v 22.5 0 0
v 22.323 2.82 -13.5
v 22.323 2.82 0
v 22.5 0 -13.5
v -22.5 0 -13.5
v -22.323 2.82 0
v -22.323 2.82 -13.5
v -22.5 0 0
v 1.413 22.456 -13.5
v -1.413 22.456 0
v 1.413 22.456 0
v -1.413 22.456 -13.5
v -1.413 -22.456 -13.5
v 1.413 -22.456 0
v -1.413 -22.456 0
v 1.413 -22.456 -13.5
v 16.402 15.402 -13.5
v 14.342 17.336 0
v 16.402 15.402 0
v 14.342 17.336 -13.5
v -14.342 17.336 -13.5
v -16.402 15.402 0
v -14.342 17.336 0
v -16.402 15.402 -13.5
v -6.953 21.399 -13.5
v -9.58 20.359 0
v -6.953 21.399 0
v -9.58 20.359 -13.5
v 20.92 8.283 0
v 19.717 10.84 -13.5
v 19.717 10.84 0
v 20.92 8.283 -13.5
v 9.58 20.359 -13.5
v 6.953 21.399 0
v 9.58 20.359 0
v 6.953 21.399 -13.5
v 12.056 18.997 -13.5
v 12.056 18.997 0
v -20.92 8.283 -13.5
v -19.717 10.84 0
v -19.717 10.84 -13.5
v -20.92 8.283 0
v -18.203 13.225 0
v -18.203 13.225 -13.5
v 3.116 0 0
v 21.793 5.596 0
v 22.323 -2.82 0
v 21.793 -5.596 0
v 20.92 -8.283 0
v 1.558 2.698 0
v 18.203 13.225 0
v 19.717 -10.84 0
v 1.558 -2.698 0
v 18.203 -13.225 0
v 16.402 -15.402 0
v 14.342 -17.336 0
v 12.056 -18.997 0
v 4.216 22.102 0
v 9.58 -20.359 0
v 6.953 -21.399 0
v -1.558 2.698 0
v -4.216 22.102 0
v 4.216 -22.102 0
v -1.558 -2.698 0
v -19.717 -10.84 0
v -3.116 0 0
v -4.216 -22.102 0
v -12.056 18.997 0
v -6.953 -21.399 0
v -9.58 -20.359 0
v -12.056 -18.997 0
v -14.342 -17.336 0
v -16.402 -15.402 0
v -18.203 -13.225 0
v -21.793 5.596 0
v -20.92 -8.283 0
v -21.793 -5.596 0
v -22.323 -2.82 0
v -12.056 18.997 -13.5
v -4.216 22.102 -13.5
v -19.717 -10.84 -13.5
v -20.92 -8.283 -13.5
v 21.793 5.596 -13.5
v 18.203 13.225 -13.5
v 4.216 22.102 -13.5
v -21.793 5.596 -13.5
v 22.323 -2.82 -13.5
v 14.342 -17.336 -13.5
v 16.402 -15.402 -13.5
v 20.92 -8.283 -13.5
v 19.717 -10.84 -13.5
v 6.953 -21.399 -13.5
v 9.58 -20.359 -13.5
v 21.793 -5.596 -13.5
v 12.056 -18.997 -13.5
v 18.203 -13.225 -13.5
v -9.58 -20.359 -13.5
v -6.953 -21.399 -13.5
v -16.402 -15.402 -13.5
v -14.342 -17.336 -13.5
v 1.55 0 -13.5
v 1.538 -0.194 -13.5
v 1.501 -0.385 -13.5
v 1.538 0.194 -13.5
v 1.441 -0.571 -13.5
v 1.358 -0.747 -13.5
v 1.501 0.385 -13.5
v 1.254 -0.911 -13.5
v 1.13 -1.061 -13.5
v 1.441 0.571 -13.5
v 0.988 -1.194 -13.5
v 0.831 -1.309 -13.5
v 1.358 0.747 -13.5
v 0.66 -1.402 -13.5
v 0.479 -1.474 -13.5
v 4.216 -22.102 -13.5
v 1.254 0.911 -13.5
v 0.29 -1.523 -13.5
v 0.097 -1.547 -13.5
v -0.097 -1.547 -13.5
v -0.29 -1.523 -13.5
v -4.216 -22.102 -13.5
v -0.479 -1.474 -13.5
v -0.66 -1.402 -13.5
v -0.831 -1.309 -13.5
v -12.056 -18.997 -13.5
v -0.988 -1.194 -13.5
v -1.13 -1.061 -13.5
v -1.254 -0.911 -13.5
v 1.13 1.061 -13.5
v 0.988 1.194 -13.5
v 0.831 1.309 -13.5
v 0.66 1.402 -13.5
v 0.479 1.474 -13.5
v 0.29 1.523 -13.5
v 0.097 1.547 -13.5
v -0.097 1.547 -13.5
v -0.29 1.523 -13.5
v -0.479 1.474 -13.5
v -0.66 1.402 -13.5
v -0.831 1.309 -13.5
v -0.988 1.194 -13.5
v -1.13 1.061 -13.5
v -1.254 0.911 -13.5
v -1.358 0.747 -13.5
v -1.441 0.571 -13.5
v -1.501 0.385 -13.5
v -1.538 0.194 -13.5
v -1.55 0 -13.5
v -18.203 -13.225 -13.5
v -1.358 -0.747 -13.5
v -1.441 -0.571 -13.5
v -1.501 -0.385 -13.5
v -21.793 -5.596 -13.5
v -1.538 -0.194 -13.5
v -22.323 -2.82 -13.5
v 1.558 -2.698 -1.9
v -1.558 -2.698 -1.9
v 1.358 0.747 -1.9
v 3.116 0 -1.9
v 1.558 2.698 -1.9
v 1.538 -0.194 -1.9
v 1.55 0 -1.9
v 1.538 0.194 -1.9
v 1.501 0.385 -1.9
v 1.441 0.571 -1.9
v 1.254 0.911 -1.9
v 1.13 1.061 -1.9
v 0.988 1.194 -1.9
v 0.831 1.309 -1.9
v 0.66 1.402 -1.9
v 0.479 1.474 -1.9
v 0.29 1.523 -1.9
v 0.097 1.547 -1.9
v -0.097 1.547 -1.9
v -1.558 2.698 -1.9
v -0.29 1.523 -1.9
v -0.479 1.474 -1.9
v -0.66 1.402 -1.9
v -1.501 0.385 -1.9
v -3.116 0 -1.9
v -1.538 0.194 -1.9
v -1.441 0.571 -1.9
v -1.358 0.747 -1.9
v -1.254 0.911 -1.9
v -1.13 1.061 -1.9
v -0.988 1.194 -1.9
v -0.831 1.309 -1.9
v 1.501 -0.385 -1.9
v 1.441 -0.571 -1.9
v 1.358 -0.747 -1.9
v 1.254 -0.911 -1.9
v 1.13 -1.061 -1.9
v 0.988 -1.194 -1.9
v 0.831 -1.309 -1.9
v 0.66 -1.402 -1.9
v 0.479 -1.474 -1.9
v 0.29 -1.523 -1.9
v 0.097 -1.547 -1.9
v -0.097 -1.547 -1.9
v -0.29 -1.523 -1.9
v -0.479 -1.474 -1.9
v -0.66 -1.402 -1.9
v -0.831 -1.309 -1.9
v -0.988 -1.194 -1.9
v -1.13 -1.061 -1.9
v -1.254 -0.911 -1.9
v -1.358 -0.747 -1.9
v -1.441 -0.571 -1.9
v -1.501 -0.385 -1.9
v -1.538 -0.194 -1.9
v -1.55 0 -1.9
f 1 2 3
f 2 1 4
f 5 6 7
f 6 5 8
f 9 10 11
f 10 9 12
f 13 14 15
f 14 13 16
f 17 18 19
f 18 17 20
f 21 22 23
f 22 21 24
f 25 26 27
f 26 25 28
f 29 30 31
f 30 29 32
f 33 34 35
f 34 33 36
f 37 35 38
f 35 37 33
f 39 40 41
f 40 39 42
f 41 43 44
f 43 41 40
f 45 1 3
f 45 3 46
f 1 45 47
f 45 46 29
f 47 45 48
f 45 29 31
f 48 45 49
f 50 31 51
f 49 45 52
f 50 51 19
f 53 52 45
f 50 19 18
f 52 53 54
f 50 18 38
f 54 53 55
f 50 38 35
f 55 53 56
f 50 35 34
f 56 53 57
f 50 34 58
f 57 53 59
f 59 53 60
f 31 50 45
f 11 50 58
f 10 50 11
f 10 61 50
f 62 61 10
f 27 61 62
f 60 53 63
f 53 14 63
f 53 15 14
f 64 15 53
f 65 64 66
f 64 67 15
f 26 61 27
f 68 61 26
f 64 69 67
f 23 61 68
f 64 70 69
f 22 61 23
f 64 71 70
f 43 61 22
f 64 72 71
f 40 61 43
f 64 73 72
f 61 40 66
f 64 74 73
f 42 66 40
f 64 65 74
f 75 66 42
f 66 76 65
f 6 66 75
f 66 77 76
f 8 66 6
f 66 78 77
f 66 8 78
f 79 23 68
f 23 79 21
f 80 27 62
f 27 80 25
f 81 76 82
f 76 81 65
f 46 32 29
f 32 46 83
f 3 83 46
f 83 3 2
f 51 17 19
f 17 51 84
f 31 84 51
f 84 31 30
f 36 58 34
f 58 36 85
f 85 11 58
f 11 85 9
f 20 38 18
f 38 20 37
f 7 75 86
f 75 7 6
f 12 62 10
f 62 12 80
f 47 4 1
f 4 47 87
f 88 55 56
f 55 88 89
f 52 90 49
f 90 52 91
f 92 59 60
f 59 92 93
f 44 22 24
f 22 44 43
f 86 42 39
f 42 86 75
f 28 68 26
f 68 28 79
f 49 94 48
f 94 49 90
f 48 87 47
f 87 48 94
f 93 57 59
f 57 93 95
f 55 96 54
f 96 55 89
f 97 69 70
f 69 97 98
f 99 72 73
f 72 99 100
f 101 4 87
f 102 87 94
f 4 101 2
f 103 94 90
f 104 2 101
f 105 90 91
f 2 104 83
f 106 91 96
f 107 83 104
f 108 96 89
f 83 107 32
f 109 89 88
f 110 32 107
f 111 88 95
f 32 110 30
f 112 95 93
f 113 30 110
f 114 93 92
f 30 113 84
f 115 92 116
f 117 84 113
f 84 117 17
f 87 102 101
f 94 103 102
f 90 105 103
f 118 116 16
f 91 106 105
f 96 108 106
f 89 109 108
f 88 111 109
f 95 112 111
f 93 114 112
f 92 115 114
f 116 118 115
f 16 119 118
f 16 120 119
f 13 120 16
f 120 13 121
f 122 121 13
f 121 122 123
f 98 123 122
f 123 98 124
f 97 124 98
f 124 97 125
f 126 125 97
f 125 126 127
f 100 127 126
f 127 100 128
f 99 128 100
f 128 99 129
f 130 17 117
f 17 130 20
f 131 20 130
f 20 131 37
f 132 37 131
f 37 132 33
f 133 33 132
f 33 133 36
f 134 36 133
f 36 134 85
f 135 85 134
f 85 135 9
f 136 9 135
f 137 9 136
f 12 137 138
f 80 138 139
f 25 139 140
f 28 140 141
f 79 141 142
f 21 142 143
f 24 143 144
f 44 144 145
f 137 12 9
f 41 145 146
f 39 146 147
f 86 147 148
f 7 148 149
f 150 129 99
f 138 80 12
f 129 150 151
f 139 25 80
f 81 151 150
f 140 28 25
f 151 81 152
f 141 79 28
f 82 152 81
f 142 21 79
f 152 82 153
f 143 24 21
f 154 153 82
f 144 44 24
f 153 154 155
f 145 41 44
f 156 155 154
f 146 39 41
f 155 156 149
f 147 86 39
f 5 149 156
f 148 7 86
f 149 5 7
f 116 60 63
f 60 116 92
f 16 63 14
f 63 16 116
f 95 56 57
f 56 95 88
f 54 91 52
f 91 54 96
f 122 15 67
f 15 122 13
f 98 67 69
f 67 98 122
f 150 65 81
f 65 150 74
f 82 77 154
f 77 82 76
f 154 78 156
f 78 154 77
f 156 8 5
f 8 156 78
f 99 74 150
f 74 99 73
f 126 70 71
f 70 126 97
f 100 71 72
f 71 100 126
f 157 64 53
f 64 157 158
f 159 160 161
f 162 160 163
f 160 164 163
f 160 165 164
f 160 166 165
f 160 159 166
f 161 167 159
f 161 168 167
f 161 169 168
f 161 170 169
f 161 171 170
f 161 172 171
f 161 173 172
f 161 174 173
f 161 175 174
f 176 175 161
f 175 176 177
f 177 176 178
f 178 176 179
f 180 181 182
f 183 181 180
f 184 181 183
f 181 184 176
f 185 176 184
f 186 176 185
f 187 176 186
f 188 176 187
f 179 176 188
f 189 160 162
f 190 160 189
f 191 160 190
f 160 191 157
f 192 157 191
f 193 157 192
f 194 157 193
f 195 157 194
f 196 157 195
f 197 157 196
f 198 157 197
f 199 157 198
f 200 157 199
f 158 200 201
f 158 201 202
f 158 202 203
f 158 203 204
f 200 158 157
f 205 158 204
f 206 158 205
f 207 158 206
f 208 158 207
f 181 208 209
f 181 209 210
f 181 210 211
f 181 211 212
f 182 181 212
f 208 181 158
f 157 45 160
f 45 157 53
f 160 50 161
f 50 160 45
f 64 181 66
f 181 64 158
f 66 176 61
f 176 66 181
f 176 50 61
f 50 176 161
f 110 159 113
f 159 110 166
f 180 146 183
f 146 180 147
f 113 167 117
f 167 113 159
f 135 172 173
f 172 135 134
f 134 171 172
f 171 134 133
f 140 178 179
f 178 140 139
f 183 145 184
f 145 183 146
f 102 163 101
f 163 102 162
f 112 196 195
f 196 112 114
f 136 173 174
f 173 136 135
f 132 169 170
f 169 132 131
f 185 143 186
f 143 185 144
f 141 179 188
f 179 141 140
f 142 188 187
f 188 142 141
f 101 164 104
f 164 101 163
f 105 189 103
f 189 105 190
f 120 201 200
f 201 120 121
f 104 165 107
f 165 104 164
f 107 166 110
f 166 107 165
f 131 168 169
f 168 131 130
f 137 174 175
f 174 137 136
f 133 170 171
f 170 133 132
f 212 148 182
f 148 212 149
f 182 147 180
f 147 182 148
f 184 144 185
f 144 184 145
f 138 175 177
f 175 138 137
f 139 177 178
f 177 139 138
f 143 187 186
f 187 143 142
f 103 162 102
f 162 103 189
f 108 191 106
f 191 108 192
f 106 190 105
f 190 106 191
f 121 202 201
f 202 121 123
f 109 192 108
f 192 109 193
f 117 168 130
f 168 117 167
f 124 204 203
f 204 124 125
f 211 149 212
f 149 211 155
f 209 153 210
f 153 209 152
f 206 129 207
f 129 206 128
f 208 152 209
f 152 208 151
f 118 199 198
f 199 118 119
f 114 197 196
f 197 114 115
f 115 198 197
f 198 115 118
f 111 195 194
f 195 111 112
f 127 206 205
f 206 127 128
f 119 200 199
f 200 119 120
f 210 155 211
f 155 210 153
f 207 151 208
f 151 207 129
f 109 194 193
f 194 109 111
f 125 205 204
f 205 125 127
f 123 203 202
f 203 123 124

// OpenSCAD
$fn = 50;


difference() {
	union() {
		translate(v = [0, 0, -13.5000000000]) {
			cylinder(h = 13.5000000000, r = 22.5000000000);
		}
		translate(v = [0, 0, -12.0000000000]) {
			cylinder(h = 12, r = 2.8750000000);
		}
	}
	union() {
		translate(v = [0, 0, 0]) {
			rotate(a = [0, 0, 0]) {
				difference() {
					union() {
						translate(v = [0, 0, -1.9000000000]) {
							linear_extrude(height = 1.9000000000) {
								polygon(points = [[3.1158000000, 0.0000000000], [1.5579000000, 2.6983619531], [-1.5579000000, 2.6983619531], [-3.1158000000, 0.0000000000], [-1.5579000000, -2.6983619531], [1.5579000000, -2.6983619531]]);
							}
						}
					}
					union();
				}
			}
		}
		#translate(v = [0, 0, -100.0000000000]) {
			cylinder(h = 200, r = 1.5500000000);
		}
	}
}
